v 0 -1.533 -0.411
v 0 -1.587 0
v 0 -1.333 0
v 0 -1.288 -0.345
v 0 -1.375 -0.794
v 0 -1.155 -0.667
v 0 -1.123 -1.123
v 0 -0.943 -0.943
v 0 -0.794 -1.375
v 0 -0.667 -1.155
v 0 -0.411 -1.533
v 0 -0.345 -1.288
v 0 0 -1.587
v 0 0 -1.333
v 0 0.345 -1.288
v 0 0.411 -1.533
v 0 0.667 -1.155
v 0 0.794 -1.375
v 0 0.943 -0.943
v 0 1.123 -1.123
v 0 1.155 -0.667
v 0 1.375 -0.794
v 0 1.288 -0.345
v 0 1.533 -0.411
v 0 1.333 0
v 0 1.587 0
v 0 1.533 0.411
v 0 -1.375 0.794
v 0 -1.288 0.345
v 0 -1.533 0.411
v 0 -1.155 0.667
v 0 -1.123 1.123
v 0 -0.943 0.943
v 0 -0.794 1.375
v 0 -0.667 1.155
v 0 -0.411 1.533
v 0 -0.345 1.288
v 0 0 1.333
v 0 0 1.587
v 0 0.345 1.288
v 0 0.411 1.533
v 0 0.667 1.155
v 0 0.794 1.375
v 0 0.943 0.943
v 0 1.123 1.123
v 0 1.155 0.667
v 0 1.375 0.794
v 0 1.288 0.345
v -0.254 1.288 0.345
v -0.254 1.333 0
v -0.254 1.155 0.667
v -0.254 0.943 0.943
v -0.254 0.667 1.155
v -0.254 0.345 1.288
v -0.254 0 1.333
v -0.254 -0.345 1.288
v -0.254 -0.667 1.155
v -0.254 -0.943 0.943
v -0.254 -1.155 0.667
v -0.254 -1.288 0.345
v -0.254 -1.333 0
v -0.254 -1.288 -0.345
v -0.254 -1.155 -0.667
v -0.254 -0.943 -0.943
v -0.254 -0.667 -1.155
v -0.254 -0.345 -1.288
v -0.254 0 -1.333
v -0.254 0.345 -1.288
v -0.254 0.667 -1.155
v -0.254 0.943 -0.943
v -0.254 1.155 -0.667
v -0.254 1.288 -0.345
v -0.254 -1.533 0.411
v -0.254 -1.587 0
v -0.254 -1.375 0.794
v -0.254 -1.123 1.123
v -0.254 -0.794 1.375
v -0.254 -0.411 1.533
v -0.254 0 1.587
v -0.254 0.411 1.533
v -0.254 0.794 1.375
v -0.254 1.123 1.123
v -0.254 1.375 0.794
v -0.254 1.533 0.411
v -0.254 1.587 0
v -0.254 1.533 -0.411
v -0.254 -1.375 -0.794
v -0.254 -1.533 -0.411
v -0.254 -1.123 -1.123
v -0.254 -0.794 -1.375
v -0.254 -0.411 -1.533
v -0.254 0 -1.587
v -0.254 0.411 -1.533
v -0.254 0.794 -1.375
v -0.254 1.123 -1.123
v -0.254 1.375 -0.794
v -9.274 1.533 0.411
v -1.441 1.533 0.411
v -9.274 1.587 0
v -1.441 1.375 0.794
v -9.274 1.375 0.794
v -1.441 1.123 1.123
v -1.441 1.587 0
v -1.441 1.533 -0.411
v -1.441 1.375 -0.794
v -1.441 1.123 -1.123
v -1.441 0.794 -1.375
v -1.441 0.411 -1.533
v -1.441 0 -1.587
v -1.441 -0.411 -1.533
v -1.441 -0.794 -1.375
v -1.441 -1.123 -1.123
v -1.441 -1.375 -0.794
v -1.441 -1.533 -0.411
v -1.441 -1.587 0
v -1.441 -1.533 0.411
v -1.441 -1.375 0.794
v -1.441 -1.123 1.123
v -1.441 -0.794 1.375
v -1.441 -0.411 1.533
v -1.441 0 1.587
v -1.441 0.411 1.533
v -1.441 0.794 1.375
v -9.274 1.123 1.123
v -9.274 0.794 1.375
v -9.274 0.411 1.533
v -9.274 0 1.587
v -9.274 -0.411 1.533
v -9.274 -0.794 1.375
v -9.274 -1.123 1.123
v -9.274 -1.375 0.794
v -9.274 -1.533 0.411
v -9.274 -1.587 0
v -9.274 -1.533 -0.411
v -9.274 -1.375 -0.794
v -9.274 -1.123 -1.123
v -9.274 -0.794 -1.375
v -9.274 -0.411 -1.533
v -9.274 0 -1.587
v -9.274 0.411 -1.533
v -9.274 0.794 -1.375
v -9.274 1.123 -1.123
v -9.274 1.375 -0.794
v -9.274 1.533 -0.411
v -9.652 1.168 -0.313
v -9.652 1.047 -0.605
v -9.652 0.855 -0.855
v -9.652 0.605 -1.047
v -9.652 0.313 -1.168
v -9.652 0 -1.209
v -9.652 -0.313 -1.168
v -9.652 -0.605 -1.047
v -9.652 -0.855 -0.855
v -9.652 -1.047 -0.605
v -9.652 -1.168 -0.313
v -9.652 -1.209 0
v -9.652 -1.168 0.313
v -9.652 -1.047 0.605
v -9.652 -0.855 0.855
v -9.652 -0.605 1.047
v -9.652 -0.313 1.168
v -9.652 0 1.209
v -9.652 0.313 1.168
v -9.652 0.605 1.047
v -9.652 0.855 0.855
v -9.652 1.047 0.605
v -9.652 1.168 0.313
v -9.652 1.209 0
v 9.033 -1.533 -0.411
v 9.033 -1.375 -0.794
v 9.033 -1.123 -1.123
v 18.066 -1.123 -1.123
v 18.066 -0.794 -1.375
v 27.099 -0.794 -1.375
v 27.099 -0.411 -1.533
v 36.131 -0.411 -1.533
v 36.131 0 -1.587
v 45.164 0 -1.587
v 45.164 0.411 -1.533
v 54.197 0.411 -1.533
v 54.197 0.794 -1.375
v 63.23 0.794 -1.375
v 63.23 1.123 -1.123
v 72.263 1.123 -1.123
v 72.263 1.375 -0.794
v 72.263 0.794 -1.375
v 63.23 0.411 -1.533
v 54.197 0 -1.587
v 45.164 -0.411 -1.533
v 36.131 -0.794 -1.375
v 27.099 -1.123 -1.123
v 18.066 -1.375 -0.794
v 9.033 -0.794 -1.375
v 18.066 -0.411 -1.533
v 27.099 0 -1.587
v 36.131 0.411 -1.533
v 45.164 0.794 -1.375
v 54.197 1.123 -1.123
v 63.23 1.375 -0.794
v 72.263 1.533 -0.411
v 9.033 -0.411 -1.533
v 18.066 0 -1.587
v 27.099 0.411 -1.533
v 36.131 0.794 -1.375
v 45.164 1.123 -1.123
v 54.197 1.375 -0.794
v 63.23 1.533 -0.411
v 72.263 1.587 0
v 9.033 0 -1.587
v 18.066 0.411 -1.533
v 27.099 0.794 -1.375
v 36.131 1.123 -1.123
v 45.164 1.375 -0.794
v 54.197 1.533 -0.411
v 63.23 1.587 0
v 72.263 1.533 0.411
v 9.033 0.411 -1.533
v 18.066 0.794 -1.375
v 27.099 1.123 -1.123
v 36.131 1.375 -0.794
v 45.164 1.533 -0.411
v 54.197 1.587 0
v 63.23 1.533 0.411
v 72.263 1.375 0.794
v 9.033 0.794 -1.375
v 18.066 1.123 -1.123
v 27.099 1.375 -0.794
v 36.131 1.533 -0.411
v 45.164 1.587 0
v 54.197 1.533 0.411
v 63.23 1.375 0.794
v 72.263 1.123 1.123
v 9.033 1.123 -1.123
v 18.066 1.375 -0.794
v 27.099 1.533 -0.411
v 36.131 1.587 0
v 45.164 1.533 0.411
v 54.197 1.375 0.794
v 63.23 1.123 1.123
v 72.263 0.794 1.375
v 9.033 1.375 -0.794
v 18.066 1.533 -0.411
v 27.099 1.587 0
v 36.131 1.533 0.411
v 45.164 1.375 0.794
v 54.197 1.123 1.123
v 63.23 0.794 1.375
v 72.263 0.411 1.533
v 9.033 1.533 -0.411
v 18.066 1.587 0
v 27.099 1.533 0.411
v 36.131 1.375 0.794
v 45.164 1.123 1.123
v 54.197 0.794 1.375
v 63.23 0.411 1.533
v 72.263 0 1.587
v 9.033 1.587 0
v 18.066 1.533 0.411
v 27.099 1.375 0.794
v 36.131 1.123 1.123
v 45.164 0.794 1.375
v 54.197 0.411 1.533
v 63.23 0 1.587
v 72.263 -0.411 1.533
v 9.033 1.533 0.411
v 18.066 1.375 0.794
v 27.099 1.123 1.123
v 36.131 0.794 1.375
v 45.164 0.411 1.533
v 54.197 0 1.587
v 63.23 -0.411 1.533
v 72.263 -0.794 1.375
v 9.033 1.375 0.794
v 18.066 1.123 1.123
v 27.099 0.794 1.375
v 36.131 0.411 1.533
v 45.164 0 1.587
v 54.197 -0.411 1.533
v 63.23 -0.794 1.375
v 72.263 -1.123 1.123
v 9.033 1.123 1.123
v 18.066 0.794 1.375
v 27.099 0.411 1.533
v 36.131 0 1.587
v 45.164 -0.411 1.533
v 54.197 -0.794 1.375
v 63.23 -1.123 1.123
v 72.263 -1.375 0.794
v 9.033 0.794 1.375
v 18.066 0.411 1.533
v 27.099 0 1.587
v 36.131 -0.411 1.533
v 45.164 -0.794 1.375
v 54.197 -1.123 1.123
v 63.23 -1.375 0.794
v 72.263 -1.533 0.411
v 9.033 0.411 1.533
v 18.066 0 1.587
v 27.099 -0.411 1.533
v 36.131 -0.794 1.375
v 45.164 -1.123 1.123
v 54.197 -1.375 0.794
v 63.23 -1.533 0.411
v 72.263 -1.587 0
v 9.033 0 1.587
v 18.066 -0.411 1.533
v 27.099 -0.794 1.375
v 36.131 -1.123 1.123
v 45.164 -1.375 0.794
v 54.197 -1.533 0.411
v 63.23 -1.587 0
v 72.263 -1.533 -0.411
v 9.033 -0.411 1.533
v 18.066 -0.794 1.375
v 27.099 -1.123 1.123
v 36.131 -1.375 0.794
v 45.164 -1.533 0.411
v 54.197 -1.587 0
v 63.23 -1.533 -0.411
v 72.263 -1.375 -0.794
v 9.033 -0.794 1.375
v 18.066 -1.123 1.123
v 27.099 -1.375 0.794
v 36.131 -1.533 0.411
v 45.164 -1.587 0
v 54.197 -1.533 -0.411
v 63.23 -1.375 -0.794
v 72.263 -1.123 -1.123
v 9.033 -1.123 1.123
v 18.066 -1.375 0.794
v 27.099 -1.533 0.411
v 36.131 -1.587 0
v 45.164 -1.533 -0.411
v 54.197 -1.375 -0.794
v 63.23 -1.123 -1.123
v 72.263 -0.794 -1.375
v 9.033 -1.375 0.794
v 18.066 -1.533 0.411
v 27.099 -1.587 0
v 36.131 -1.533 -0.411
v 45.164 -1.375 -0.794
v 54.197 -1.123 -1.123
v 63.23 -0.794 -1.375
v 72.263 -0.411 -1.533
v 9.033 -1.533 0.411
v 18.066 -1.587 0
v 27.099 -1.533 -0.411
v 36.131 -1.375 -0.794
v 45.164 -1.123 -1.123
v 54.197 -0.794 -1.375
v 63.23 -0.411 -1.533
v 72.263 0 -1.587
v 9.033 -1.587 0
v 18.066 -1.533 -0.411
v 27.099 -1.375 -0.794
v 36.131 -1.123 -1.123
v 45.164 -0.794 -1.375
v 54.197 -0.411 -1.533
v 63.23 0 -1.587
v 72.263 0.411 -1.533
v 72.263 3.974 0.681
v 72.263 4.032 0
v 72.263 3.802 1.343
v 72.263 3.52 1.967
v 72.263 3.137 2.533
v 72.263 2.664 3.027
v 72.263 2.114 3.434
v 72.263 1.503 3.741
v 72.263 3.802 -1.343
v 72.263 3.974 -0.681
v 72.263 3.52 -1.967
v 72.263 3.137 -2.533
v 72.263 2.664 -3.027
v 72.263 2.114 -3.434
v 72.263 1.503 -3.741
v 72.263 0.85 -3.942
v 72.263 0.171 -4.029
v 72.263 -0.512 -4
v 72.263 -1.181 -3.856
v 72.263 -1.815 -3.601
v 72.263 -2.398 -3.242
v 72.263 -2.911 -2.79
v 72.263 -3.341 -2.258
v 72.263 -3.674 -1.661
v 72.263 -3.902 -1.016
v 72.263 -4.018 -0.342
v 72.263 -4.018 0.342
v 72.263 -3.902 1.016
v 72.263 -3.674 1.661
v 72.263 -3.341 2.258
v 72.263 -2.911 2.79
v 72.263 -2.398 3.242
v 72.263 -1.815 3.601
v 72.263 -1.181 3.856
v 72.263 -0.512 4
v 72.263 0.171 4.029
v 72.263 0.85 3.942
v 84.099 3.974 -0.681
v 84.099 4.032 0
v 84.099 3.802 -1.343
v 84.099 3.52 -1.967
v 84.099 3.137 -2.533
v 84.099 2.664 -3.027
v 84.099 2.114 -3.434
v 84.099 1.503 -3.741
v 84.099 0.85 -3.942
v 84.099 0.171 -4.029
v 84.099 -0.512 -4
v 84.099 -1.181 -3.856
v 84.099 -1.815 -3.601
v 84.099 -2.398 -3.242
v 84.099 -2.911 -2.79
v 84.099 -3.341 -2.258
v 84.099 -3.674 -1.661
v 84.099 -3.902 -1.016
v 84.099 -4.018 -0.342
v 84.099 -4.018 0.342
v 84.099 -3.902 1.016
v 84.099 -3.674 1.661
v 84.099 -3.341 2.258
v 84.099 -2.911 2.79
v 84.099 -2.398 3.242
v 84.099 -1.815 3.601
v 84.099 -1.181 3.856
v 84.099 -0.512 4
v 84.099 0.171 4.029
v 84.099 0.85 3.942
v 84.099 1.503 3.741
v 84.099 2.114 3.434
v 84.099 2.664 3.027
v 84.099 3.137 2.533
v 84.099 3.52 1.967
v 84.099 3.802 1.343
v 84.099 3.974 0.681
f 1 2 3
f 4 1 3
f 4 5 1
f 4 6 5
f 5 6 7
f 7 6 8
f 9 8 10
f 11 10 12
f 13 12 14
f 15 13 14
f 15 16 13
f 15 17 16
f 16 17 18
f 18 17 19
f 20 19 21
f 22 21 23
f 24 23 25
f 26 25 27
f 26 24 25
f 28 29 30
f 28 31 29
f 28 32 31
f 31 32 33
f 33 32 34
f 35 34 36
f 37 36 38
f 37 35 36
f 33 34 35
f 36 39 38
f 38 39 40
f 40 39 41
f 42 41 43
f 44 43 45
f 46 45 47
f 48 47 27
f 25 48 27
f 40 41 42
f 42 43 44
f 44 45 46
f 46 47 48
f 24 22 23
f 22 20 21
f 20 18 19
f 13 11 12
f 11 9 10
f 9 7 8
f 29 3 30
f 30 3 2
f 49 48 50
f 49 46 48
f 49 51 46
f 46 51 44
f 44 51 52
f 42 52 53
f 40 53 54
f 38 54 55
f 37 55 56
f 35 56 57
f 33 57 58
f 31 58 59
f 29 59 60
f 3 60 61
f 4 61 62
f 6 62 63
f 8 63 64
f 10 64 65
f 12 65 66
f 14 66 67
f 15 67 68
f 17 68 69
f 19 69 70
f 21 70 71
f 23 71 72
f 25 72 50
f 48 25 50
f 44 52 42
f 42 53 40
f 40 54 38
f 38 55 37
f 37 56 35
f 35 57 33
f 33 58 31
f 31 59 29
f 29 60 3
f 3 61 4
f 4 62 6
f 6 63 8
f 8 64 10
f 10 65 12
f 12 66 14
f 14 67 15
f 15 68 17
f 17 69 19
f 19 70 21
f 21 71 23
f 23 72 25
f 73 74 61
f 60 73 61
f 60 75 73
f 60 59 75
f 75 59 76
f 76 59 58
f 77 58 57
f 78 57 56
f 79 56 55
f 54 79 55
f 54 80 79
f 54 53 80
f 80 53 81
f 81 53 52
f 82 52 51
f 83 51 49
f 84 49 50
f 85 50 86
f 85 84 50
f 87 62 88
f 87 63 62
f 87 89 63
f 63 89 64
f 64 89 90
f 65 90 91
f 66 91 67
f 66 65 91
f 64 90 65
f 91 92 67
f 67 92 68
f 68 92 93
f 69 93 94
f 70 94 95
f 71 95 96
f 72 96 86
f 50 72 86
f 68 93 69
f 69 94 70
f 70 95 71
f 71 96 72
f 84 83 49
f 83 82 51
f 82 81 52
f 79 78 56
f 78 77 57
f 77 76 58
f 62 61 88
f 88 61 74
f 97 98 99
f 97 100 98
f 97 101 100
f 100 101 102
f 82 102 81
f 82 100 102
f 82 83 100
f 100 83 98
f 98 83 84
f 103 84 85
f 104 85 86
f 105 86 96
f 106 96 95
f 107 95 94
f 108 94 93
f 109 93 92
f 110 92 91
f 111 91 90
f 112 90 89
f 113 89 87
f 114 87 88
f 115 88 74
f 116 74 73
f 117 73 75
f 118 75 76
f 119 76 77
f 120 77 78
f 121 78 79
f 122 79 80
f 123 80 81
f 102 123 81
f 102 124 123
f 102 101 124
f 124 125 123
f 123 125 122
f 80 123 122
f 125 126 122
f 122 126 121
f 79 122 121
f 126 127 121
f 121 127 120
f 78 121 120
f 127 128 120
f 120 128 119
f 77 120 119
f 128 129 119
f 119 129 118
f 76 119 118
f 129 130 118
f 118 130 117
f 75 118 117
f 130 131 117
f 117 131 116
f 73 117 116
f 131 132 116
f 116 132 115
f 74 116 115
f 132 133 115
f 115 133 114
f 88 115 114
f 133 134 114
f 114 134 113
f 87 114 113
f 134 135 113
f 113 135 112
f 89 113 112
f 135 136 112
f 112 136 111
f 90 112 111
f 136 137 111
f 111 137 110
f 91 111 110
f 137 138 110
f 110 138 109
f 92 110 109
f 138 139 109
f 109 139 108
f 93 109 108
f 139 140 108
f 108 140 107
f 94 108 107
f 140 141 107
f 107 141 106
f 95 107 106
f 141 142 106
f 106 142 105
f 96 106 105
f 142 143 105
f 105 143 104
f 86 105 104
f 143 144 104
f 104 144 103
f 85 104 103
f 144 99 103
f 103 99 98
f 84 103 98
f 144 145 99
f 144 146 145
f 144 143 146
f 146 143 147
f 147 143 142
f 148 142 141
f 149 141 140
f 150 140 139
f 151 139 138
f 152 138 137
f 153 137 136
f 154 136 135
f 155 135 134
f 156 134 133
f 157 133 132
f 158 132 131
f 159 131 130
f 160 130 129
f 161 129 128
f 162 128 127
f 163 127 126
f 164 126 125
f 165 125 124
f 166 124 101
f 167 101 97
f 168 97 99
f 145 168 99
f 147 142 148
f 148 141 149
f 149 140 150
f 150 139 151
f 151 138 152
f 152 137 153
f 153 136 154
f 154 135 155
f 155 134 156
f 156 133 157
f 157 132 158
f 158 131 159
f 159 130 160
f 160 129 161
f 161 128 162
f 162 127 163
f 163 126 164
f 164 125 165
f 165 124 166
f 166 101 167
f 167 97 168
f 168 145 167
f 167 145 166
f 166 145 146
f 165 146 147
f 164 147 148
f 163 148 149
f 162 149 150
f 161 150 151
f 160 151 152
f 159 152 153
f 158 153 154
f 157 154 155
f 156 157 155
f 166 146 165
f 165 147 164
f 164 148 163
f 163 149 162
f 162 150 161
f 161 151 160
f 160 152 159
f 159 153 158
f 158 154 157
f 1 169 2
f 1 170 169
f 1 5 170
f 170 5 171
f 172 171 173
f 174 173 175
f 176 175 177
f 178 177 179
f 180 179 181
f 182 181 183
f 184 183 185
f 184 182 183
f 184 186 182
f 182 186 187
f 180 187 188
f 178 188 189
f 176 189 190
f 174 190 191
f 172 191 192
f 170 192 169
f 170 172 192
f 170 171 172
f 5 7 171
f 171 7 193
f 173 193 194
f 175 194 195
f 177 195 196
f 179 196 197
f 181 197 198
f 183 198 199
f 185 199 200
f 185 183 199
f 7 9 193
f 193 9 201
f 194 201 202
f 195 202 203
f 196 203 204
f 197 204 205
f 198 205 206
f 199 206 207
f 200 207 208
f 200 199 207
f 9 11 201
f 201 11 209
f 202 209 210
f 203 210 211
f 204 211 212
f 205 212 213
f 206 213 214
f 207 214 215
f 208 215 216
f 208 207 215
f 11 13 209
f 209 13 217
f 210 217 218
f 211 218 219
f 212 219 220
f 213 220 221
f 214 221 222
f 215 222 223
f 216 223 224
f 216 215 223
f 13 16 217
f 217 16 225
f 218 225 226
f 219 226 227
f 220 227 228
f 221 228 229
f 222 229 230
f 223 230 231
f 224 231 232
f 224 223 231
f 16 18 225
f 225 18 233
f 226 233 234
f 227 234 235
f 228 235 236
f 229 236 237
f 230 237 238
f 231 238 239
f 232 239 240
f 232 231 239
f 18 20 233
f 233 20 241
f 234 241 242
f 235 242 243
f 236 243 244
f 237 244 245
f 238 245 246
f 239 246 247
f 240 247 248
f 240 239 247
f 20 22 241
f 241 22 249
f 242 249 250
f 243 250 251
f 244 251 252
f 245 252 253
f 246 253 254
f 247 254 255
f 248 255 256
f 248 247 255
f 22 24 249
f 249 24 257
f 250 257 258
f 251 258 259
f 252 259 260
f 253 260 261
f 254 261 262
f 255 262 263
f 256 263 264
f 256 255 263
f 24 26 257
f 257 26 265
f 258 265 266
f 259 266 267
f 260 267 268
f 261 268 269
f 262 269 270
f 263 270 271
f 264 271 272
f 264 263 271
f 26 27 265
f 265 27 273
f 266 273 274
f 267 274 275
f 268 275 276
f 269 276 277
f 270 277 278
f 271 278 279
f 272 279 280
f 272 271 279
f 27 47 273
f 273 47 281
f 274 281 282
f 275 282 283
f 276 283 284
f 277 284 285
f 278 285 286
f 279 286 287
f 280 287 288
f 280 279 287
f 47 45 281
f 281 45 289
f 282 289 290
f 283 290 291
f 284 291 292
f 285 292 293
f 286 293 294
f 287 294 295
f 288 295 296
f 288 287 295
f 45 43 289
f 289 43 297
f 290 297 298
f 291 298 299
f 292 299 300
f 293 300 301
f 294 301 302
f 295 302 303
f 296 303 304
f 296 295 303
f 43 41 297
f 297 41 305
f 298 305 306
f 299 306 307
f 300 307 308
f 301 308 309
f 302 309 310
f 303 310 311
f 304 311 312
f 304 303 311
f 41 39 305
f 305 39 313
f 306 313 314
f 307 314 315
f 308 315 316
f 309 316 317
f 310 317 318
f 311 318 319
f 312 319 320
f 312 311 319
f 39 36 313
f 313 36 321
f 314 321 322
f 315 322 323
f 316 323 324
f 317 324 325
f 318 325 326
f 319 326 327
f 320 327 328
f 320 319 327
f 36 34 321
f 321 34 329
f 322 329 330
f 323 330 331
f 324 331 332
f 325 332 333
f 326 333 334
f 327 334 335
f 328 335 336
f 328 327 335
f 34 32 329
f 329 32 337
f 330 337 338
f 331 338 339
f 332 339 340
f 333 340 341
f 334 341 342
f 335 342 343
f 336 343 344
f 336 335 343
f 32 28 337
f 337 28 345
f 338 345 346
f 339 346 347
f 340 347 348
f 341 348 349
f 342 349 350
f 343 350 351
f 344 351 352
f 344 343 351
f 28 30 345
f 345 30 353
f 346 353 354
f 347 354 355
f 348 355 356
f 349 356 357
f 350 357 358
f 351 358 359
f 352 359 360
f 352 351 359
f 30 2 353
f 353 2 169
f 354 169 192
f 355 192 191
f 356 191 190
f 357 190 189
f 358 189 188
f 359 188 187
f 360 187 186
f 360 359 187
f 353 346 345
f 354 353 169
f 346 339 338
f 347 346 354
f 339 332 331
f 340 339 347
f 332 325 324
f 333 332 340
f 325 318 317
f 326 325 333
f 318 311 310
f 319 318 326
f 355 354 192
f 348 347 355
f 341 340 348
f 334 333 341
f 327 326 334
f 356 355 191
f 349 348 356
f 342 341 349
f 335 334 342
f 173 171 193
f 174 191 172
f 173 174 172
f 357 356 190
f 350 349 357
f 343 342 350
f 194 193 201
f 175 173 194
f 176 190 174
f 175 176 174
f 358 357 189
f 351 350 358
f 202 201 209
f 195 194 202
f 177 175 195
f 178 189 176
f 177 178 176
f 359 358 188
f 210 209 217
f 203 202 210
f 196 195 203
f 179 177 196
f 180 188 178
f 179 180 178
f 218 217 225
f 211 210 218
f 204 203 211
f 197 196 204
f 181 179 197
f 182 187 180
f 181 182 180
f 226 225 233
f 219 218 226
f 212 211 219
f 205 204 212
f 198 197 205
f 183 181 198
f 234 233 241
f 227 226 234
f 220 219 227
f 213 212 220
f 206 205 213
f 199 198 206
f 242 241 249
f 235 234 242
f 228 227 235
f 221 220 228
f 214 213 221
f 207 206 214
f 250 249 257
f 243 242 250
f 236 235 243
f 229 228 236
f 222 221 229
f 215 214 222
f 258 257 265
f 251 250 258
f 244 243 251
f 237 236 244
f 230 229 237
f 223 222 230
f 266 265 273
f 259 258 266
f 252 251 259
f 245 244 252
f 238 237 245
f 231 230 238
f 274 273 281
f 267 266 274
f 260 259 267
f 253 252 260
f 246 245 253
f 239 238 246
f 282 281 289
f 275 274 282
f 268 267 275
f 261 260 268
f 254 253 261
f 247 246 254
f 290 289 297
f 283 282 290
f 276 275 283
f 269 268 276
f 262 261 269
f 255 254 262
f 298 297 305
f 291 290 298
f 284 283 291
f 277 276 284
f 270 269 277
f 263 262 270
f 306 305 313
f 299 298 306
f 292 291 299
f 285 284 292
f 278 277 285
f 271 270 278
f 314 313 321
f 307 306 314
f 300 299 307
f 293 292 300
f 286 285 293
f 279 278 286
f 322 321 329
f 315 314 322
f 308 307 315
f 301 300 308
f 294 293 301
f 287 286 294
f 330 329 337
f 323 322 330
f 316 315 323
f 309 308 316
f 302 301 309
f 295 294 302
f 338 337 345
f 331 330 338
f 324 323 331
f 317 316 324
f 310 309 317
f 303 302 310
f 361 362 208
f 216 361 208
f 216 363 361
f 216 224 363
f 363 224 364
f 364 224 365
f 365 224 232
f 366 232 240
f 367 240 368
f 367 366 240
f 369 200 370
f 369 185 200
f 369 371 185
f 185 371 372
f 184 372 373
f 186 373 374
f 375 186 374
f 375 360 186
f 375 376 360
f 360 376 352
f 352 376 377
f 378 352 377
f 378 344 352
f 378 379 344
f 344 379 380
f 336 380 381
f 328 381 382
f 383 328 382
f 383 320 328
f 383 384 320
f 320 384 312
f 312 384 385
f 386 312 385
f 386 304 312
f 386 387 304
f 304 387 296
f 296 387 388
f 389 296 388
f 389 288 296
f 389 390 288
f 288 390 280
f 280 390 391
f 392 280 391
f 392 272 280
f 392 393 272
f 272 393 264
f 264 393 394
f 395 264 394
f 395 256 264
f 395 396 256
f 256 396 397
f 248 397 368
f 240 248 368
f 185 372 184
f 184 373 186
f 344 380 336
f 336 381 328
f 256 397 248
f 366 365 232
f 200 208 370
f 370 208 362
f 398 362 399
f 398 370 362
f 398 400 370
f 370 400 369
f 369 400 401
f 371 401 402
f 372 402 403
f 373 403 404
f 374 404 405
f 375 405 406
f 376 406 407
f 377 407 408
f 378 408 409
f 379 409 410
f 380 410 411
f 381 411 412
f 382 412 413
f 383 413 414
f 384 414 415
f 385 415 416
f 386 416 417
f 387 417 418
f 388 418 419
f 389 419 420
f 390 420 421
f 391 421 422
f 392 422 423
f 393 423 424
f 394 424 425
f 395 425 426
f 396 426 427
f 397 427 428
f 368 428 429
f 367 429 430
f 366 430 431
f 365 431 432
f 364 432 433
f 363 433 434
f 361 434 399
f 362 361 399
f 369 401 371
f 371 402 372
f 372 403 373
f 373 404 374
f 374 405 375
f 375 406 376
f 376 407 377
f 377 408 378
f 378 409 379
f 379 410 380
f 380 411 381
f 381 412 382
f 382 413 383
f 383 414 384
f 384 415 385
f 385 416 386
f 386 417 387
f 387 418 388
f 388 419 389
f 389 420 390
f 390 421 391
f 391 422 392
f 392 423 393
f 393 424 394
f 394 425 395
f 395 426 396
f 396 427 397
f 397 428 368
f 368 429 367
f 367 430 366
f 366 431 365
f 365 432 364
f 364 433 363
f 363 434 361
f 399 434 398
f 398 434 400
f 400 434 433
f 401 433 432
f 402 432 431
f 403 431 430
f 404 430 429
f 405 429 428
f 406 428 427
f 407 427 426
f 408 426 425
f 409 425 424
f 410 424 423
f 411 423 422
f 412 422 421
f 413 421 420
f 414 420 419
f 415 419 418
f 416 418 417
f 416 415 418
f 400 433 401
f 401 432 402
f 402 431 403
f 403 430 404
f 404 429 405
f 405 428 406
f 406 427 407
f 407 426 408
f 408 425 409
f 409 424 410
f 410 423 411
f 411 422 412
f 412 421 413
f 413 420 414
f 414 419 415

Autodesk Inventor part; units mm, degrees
sketch "Sketch_1" plane through (0, 0, 0) normal (0, 0, 1) x (1, 0, 0)
  line L0 (84.0994, 0) -> (0, 0)
  line L1 (0, 0) -> (0, 1.5875)
  line L2 (0, 1.5875) -> (72.263, 1.5875)
  line L3 (72.263, 1.5875) -> (72.263, 4.0323)
  line L4 (72.263, 4.0323) -> (84.0994, 4.0323)
  line L5 (84.0994, 4.0323) -> (84.0994, 0)
  line L6 (84.0994, 0) -> (0, 0)
revolve "Revolution1" add sketch "Sketch_1" angle 360 about axis through (84.0994, 0, 0) along (1, 0, 0)
sketch "Sketch_2" plane through (0, 0, 0) normal (0, 0, 1) x (1, 0, 0)
  line L0 (0, 0) -> (-9.652, 0)
  line L1 (-9.652, 0) -> (-9.652, 1.209)
  line L2 (-9.652, 1.209) -> (-9.2735, 1.5875)
  line L3 (-9.2735, 1.5875) -> (0, 1.5875)
  line L4 (0, 1.5875) -> (0, 0)
  line L5 (0, 0) -> (-9.652, 0)
revolve "Revolution2" add sketch "Sketch_2" angle 360 about axis through (0, 0, 0) along (1, 0, 0)
sketch "Sketch_30" plane through (0, 0, 0) normal (0, 0, 1) x (1, 0, 0)
  line L0 (0, 0) -> (-0.254, 0)
  line L1 (-0.254, 1.8415) -> (-0.254, 1.3335)
  line L2 (-0.254, 1.3335) -> (0, 1.3335)
  line L3 (0, 1.3335) -> (0, 1.8415)
  line L4 (0, 1.8415) -> (-0.254, 1.8415)
revolve "Revolution3" cut sketch "Sketch_30" angle 360 about axis through (0, 0, 0) along (1, 0, 0)
ref_plane "rod_cp_XY" through (0, 0, 0) normal (1, 0, 0) x (0, 0, -1)
ref_plane "rod_cp_YZ" through (0, 0, 0) normal (0, 0, -1) x (0, 1, 0)
ref_plane "rod_cp_ZX" through (0, 0, 0) normal (0, 1, 0) x (1, 0, 0)
ref_plane "to_rod_clevis_XY" through (-9.652, 0, 0) normal (1, 0, 0) x (0, 0, -1)
ref_plane "to_rod_clevis_YZ" through (-9.652, 0, 0) normal (0, 0, -1) x (0, 1, 0)
ref_plane "to_rod_clevis_ZX" through (-9.652, 0, 0) normal (0, 1, 0) x (1, 0, 0)
ref_plane "rl2_XY" through (0, 0, 0) normal (1, 0, 0) x (0, 0, -1)
ref_plane "rl2_YZ" through (0, 0, 0) normal (0, 0, -1) x (0, 1, 0)
ref_plane "rl2_ZX" through (0, 0, 0) normal (0, 1, 0) x (1, 0, 0)
ref_plane "rl1_XY" through (-9.652, 0, 0) normal (1, 0, 0) x (0, 0, -1)
ref_plane "rl1_YZ" through (-9.652, 0, 0) normal (0, 0, -1) x (0, 1, 0)
ref_plane "rl1_ZX" through (-9.652, 0, 0) normal (0, 1, 0) x (1, 0, 0)
ref_plane "thd1_XY" through (-9.652, 1.5875, 0) normal (1, 0, 0) x (0, 0, -1)
ref_plane "thd1_YZ" through (-9.652, 1.5875, 0) normal (0, 0, -1) x (0, 1, 0)
ref_plane "thd1_ZX" through (-9.652, 1.5875, 0) normal (0, 1, 0) x (1, 0, 0)
ref_plane "thd2_XY" through (-9.652, -1.5875, 0) normal (1, 0, 0) x (0, 0, -1)
ref_plane "thd2_YZ" through (-9.652, -1.5875, 0) normal (0, 0, -1) x (0, 1, 0)
ref_plane "thd2_ZX" through (-9.652, -1.5875, 0) normal (0, 1, 0) x (1, 0, 0)
ref_plane "dia1_XY" through (0, 1.5875, 0) normal (1, 0, 0) x (0, 0, -1)
ref_plane "dia1_YZ" through (0, 1.5875, 0) normal (0, 0, -1) x (0, 1, 0)
ref_plane "dia1_ZX" through (0, 1.5875, 0) normal (0, 1, 0) x (1, 0, 0)
ref_plane "dia2_XY" through (0, -1.5875, 0) normal (1, 0, 0) x (0, 0, -1)
ref_plane "dia2_YZ" through (0, -1.5875, 0) normal (0, 0, -1) x (0, 1, 0)
ref_plane "dia2_ZX" through (0, -1.5875, 0) normal (0, 1, 0) x (1, 0, 0)
ref_plane "dia1r_XY" through (0, 0, 5.5626) normal (1, 0, 0) x (0, 0, -1)
ref_plane "dia1r_YZ" through (0, 0, 5.5626) normal (0, 0, -1) x (0, 1, 0)
ref_plane "dia1r_ZX" through (0, 0, 5.5626) normal (0, 1, 0) x (1, 0, 0)
ref_plane "dia2r_XY" through (0, 0, -5.5626) normal (1, 0, 0) x (0, 0, -1)
ref_plane "dia2r_YZ" through (0, 0, -5.5626) normal (0, 0, -1) x (0, 1, 0)
ref_plane "dia2r_ZX" through (0, 0, -5.5626) normal (0, 1, 0) x (1, 0, 0)
ref_plane "dia12_XY" through (0, 0, 7.6835) normal (1, 0, 0) x (0, 0, -1)
ref_plane "dia12_YZ" through (0, 0, 7.6835) normal (0, 0, -1) x (0, 1, 0)
ref_plane "dia12_ZX" through (0, 0, 7.6835) normal (0, 1, 0) x (1, 0, 0)
ref_plane "dia22_XY" through (0, 0, -7.6835) normal (1, 0, 0) x (0, 0, -1)
ref_plane "dia22_YZ" through (0, 0, -7.6835) normal (0, 0, -1) x (0, 1, 0)
ref_plane "dia22_ZX" through (0, 0, -7.6835) normal (0, 1, 0) x (1, 0, 0)
properties part number "0072-DXP0_rod"
